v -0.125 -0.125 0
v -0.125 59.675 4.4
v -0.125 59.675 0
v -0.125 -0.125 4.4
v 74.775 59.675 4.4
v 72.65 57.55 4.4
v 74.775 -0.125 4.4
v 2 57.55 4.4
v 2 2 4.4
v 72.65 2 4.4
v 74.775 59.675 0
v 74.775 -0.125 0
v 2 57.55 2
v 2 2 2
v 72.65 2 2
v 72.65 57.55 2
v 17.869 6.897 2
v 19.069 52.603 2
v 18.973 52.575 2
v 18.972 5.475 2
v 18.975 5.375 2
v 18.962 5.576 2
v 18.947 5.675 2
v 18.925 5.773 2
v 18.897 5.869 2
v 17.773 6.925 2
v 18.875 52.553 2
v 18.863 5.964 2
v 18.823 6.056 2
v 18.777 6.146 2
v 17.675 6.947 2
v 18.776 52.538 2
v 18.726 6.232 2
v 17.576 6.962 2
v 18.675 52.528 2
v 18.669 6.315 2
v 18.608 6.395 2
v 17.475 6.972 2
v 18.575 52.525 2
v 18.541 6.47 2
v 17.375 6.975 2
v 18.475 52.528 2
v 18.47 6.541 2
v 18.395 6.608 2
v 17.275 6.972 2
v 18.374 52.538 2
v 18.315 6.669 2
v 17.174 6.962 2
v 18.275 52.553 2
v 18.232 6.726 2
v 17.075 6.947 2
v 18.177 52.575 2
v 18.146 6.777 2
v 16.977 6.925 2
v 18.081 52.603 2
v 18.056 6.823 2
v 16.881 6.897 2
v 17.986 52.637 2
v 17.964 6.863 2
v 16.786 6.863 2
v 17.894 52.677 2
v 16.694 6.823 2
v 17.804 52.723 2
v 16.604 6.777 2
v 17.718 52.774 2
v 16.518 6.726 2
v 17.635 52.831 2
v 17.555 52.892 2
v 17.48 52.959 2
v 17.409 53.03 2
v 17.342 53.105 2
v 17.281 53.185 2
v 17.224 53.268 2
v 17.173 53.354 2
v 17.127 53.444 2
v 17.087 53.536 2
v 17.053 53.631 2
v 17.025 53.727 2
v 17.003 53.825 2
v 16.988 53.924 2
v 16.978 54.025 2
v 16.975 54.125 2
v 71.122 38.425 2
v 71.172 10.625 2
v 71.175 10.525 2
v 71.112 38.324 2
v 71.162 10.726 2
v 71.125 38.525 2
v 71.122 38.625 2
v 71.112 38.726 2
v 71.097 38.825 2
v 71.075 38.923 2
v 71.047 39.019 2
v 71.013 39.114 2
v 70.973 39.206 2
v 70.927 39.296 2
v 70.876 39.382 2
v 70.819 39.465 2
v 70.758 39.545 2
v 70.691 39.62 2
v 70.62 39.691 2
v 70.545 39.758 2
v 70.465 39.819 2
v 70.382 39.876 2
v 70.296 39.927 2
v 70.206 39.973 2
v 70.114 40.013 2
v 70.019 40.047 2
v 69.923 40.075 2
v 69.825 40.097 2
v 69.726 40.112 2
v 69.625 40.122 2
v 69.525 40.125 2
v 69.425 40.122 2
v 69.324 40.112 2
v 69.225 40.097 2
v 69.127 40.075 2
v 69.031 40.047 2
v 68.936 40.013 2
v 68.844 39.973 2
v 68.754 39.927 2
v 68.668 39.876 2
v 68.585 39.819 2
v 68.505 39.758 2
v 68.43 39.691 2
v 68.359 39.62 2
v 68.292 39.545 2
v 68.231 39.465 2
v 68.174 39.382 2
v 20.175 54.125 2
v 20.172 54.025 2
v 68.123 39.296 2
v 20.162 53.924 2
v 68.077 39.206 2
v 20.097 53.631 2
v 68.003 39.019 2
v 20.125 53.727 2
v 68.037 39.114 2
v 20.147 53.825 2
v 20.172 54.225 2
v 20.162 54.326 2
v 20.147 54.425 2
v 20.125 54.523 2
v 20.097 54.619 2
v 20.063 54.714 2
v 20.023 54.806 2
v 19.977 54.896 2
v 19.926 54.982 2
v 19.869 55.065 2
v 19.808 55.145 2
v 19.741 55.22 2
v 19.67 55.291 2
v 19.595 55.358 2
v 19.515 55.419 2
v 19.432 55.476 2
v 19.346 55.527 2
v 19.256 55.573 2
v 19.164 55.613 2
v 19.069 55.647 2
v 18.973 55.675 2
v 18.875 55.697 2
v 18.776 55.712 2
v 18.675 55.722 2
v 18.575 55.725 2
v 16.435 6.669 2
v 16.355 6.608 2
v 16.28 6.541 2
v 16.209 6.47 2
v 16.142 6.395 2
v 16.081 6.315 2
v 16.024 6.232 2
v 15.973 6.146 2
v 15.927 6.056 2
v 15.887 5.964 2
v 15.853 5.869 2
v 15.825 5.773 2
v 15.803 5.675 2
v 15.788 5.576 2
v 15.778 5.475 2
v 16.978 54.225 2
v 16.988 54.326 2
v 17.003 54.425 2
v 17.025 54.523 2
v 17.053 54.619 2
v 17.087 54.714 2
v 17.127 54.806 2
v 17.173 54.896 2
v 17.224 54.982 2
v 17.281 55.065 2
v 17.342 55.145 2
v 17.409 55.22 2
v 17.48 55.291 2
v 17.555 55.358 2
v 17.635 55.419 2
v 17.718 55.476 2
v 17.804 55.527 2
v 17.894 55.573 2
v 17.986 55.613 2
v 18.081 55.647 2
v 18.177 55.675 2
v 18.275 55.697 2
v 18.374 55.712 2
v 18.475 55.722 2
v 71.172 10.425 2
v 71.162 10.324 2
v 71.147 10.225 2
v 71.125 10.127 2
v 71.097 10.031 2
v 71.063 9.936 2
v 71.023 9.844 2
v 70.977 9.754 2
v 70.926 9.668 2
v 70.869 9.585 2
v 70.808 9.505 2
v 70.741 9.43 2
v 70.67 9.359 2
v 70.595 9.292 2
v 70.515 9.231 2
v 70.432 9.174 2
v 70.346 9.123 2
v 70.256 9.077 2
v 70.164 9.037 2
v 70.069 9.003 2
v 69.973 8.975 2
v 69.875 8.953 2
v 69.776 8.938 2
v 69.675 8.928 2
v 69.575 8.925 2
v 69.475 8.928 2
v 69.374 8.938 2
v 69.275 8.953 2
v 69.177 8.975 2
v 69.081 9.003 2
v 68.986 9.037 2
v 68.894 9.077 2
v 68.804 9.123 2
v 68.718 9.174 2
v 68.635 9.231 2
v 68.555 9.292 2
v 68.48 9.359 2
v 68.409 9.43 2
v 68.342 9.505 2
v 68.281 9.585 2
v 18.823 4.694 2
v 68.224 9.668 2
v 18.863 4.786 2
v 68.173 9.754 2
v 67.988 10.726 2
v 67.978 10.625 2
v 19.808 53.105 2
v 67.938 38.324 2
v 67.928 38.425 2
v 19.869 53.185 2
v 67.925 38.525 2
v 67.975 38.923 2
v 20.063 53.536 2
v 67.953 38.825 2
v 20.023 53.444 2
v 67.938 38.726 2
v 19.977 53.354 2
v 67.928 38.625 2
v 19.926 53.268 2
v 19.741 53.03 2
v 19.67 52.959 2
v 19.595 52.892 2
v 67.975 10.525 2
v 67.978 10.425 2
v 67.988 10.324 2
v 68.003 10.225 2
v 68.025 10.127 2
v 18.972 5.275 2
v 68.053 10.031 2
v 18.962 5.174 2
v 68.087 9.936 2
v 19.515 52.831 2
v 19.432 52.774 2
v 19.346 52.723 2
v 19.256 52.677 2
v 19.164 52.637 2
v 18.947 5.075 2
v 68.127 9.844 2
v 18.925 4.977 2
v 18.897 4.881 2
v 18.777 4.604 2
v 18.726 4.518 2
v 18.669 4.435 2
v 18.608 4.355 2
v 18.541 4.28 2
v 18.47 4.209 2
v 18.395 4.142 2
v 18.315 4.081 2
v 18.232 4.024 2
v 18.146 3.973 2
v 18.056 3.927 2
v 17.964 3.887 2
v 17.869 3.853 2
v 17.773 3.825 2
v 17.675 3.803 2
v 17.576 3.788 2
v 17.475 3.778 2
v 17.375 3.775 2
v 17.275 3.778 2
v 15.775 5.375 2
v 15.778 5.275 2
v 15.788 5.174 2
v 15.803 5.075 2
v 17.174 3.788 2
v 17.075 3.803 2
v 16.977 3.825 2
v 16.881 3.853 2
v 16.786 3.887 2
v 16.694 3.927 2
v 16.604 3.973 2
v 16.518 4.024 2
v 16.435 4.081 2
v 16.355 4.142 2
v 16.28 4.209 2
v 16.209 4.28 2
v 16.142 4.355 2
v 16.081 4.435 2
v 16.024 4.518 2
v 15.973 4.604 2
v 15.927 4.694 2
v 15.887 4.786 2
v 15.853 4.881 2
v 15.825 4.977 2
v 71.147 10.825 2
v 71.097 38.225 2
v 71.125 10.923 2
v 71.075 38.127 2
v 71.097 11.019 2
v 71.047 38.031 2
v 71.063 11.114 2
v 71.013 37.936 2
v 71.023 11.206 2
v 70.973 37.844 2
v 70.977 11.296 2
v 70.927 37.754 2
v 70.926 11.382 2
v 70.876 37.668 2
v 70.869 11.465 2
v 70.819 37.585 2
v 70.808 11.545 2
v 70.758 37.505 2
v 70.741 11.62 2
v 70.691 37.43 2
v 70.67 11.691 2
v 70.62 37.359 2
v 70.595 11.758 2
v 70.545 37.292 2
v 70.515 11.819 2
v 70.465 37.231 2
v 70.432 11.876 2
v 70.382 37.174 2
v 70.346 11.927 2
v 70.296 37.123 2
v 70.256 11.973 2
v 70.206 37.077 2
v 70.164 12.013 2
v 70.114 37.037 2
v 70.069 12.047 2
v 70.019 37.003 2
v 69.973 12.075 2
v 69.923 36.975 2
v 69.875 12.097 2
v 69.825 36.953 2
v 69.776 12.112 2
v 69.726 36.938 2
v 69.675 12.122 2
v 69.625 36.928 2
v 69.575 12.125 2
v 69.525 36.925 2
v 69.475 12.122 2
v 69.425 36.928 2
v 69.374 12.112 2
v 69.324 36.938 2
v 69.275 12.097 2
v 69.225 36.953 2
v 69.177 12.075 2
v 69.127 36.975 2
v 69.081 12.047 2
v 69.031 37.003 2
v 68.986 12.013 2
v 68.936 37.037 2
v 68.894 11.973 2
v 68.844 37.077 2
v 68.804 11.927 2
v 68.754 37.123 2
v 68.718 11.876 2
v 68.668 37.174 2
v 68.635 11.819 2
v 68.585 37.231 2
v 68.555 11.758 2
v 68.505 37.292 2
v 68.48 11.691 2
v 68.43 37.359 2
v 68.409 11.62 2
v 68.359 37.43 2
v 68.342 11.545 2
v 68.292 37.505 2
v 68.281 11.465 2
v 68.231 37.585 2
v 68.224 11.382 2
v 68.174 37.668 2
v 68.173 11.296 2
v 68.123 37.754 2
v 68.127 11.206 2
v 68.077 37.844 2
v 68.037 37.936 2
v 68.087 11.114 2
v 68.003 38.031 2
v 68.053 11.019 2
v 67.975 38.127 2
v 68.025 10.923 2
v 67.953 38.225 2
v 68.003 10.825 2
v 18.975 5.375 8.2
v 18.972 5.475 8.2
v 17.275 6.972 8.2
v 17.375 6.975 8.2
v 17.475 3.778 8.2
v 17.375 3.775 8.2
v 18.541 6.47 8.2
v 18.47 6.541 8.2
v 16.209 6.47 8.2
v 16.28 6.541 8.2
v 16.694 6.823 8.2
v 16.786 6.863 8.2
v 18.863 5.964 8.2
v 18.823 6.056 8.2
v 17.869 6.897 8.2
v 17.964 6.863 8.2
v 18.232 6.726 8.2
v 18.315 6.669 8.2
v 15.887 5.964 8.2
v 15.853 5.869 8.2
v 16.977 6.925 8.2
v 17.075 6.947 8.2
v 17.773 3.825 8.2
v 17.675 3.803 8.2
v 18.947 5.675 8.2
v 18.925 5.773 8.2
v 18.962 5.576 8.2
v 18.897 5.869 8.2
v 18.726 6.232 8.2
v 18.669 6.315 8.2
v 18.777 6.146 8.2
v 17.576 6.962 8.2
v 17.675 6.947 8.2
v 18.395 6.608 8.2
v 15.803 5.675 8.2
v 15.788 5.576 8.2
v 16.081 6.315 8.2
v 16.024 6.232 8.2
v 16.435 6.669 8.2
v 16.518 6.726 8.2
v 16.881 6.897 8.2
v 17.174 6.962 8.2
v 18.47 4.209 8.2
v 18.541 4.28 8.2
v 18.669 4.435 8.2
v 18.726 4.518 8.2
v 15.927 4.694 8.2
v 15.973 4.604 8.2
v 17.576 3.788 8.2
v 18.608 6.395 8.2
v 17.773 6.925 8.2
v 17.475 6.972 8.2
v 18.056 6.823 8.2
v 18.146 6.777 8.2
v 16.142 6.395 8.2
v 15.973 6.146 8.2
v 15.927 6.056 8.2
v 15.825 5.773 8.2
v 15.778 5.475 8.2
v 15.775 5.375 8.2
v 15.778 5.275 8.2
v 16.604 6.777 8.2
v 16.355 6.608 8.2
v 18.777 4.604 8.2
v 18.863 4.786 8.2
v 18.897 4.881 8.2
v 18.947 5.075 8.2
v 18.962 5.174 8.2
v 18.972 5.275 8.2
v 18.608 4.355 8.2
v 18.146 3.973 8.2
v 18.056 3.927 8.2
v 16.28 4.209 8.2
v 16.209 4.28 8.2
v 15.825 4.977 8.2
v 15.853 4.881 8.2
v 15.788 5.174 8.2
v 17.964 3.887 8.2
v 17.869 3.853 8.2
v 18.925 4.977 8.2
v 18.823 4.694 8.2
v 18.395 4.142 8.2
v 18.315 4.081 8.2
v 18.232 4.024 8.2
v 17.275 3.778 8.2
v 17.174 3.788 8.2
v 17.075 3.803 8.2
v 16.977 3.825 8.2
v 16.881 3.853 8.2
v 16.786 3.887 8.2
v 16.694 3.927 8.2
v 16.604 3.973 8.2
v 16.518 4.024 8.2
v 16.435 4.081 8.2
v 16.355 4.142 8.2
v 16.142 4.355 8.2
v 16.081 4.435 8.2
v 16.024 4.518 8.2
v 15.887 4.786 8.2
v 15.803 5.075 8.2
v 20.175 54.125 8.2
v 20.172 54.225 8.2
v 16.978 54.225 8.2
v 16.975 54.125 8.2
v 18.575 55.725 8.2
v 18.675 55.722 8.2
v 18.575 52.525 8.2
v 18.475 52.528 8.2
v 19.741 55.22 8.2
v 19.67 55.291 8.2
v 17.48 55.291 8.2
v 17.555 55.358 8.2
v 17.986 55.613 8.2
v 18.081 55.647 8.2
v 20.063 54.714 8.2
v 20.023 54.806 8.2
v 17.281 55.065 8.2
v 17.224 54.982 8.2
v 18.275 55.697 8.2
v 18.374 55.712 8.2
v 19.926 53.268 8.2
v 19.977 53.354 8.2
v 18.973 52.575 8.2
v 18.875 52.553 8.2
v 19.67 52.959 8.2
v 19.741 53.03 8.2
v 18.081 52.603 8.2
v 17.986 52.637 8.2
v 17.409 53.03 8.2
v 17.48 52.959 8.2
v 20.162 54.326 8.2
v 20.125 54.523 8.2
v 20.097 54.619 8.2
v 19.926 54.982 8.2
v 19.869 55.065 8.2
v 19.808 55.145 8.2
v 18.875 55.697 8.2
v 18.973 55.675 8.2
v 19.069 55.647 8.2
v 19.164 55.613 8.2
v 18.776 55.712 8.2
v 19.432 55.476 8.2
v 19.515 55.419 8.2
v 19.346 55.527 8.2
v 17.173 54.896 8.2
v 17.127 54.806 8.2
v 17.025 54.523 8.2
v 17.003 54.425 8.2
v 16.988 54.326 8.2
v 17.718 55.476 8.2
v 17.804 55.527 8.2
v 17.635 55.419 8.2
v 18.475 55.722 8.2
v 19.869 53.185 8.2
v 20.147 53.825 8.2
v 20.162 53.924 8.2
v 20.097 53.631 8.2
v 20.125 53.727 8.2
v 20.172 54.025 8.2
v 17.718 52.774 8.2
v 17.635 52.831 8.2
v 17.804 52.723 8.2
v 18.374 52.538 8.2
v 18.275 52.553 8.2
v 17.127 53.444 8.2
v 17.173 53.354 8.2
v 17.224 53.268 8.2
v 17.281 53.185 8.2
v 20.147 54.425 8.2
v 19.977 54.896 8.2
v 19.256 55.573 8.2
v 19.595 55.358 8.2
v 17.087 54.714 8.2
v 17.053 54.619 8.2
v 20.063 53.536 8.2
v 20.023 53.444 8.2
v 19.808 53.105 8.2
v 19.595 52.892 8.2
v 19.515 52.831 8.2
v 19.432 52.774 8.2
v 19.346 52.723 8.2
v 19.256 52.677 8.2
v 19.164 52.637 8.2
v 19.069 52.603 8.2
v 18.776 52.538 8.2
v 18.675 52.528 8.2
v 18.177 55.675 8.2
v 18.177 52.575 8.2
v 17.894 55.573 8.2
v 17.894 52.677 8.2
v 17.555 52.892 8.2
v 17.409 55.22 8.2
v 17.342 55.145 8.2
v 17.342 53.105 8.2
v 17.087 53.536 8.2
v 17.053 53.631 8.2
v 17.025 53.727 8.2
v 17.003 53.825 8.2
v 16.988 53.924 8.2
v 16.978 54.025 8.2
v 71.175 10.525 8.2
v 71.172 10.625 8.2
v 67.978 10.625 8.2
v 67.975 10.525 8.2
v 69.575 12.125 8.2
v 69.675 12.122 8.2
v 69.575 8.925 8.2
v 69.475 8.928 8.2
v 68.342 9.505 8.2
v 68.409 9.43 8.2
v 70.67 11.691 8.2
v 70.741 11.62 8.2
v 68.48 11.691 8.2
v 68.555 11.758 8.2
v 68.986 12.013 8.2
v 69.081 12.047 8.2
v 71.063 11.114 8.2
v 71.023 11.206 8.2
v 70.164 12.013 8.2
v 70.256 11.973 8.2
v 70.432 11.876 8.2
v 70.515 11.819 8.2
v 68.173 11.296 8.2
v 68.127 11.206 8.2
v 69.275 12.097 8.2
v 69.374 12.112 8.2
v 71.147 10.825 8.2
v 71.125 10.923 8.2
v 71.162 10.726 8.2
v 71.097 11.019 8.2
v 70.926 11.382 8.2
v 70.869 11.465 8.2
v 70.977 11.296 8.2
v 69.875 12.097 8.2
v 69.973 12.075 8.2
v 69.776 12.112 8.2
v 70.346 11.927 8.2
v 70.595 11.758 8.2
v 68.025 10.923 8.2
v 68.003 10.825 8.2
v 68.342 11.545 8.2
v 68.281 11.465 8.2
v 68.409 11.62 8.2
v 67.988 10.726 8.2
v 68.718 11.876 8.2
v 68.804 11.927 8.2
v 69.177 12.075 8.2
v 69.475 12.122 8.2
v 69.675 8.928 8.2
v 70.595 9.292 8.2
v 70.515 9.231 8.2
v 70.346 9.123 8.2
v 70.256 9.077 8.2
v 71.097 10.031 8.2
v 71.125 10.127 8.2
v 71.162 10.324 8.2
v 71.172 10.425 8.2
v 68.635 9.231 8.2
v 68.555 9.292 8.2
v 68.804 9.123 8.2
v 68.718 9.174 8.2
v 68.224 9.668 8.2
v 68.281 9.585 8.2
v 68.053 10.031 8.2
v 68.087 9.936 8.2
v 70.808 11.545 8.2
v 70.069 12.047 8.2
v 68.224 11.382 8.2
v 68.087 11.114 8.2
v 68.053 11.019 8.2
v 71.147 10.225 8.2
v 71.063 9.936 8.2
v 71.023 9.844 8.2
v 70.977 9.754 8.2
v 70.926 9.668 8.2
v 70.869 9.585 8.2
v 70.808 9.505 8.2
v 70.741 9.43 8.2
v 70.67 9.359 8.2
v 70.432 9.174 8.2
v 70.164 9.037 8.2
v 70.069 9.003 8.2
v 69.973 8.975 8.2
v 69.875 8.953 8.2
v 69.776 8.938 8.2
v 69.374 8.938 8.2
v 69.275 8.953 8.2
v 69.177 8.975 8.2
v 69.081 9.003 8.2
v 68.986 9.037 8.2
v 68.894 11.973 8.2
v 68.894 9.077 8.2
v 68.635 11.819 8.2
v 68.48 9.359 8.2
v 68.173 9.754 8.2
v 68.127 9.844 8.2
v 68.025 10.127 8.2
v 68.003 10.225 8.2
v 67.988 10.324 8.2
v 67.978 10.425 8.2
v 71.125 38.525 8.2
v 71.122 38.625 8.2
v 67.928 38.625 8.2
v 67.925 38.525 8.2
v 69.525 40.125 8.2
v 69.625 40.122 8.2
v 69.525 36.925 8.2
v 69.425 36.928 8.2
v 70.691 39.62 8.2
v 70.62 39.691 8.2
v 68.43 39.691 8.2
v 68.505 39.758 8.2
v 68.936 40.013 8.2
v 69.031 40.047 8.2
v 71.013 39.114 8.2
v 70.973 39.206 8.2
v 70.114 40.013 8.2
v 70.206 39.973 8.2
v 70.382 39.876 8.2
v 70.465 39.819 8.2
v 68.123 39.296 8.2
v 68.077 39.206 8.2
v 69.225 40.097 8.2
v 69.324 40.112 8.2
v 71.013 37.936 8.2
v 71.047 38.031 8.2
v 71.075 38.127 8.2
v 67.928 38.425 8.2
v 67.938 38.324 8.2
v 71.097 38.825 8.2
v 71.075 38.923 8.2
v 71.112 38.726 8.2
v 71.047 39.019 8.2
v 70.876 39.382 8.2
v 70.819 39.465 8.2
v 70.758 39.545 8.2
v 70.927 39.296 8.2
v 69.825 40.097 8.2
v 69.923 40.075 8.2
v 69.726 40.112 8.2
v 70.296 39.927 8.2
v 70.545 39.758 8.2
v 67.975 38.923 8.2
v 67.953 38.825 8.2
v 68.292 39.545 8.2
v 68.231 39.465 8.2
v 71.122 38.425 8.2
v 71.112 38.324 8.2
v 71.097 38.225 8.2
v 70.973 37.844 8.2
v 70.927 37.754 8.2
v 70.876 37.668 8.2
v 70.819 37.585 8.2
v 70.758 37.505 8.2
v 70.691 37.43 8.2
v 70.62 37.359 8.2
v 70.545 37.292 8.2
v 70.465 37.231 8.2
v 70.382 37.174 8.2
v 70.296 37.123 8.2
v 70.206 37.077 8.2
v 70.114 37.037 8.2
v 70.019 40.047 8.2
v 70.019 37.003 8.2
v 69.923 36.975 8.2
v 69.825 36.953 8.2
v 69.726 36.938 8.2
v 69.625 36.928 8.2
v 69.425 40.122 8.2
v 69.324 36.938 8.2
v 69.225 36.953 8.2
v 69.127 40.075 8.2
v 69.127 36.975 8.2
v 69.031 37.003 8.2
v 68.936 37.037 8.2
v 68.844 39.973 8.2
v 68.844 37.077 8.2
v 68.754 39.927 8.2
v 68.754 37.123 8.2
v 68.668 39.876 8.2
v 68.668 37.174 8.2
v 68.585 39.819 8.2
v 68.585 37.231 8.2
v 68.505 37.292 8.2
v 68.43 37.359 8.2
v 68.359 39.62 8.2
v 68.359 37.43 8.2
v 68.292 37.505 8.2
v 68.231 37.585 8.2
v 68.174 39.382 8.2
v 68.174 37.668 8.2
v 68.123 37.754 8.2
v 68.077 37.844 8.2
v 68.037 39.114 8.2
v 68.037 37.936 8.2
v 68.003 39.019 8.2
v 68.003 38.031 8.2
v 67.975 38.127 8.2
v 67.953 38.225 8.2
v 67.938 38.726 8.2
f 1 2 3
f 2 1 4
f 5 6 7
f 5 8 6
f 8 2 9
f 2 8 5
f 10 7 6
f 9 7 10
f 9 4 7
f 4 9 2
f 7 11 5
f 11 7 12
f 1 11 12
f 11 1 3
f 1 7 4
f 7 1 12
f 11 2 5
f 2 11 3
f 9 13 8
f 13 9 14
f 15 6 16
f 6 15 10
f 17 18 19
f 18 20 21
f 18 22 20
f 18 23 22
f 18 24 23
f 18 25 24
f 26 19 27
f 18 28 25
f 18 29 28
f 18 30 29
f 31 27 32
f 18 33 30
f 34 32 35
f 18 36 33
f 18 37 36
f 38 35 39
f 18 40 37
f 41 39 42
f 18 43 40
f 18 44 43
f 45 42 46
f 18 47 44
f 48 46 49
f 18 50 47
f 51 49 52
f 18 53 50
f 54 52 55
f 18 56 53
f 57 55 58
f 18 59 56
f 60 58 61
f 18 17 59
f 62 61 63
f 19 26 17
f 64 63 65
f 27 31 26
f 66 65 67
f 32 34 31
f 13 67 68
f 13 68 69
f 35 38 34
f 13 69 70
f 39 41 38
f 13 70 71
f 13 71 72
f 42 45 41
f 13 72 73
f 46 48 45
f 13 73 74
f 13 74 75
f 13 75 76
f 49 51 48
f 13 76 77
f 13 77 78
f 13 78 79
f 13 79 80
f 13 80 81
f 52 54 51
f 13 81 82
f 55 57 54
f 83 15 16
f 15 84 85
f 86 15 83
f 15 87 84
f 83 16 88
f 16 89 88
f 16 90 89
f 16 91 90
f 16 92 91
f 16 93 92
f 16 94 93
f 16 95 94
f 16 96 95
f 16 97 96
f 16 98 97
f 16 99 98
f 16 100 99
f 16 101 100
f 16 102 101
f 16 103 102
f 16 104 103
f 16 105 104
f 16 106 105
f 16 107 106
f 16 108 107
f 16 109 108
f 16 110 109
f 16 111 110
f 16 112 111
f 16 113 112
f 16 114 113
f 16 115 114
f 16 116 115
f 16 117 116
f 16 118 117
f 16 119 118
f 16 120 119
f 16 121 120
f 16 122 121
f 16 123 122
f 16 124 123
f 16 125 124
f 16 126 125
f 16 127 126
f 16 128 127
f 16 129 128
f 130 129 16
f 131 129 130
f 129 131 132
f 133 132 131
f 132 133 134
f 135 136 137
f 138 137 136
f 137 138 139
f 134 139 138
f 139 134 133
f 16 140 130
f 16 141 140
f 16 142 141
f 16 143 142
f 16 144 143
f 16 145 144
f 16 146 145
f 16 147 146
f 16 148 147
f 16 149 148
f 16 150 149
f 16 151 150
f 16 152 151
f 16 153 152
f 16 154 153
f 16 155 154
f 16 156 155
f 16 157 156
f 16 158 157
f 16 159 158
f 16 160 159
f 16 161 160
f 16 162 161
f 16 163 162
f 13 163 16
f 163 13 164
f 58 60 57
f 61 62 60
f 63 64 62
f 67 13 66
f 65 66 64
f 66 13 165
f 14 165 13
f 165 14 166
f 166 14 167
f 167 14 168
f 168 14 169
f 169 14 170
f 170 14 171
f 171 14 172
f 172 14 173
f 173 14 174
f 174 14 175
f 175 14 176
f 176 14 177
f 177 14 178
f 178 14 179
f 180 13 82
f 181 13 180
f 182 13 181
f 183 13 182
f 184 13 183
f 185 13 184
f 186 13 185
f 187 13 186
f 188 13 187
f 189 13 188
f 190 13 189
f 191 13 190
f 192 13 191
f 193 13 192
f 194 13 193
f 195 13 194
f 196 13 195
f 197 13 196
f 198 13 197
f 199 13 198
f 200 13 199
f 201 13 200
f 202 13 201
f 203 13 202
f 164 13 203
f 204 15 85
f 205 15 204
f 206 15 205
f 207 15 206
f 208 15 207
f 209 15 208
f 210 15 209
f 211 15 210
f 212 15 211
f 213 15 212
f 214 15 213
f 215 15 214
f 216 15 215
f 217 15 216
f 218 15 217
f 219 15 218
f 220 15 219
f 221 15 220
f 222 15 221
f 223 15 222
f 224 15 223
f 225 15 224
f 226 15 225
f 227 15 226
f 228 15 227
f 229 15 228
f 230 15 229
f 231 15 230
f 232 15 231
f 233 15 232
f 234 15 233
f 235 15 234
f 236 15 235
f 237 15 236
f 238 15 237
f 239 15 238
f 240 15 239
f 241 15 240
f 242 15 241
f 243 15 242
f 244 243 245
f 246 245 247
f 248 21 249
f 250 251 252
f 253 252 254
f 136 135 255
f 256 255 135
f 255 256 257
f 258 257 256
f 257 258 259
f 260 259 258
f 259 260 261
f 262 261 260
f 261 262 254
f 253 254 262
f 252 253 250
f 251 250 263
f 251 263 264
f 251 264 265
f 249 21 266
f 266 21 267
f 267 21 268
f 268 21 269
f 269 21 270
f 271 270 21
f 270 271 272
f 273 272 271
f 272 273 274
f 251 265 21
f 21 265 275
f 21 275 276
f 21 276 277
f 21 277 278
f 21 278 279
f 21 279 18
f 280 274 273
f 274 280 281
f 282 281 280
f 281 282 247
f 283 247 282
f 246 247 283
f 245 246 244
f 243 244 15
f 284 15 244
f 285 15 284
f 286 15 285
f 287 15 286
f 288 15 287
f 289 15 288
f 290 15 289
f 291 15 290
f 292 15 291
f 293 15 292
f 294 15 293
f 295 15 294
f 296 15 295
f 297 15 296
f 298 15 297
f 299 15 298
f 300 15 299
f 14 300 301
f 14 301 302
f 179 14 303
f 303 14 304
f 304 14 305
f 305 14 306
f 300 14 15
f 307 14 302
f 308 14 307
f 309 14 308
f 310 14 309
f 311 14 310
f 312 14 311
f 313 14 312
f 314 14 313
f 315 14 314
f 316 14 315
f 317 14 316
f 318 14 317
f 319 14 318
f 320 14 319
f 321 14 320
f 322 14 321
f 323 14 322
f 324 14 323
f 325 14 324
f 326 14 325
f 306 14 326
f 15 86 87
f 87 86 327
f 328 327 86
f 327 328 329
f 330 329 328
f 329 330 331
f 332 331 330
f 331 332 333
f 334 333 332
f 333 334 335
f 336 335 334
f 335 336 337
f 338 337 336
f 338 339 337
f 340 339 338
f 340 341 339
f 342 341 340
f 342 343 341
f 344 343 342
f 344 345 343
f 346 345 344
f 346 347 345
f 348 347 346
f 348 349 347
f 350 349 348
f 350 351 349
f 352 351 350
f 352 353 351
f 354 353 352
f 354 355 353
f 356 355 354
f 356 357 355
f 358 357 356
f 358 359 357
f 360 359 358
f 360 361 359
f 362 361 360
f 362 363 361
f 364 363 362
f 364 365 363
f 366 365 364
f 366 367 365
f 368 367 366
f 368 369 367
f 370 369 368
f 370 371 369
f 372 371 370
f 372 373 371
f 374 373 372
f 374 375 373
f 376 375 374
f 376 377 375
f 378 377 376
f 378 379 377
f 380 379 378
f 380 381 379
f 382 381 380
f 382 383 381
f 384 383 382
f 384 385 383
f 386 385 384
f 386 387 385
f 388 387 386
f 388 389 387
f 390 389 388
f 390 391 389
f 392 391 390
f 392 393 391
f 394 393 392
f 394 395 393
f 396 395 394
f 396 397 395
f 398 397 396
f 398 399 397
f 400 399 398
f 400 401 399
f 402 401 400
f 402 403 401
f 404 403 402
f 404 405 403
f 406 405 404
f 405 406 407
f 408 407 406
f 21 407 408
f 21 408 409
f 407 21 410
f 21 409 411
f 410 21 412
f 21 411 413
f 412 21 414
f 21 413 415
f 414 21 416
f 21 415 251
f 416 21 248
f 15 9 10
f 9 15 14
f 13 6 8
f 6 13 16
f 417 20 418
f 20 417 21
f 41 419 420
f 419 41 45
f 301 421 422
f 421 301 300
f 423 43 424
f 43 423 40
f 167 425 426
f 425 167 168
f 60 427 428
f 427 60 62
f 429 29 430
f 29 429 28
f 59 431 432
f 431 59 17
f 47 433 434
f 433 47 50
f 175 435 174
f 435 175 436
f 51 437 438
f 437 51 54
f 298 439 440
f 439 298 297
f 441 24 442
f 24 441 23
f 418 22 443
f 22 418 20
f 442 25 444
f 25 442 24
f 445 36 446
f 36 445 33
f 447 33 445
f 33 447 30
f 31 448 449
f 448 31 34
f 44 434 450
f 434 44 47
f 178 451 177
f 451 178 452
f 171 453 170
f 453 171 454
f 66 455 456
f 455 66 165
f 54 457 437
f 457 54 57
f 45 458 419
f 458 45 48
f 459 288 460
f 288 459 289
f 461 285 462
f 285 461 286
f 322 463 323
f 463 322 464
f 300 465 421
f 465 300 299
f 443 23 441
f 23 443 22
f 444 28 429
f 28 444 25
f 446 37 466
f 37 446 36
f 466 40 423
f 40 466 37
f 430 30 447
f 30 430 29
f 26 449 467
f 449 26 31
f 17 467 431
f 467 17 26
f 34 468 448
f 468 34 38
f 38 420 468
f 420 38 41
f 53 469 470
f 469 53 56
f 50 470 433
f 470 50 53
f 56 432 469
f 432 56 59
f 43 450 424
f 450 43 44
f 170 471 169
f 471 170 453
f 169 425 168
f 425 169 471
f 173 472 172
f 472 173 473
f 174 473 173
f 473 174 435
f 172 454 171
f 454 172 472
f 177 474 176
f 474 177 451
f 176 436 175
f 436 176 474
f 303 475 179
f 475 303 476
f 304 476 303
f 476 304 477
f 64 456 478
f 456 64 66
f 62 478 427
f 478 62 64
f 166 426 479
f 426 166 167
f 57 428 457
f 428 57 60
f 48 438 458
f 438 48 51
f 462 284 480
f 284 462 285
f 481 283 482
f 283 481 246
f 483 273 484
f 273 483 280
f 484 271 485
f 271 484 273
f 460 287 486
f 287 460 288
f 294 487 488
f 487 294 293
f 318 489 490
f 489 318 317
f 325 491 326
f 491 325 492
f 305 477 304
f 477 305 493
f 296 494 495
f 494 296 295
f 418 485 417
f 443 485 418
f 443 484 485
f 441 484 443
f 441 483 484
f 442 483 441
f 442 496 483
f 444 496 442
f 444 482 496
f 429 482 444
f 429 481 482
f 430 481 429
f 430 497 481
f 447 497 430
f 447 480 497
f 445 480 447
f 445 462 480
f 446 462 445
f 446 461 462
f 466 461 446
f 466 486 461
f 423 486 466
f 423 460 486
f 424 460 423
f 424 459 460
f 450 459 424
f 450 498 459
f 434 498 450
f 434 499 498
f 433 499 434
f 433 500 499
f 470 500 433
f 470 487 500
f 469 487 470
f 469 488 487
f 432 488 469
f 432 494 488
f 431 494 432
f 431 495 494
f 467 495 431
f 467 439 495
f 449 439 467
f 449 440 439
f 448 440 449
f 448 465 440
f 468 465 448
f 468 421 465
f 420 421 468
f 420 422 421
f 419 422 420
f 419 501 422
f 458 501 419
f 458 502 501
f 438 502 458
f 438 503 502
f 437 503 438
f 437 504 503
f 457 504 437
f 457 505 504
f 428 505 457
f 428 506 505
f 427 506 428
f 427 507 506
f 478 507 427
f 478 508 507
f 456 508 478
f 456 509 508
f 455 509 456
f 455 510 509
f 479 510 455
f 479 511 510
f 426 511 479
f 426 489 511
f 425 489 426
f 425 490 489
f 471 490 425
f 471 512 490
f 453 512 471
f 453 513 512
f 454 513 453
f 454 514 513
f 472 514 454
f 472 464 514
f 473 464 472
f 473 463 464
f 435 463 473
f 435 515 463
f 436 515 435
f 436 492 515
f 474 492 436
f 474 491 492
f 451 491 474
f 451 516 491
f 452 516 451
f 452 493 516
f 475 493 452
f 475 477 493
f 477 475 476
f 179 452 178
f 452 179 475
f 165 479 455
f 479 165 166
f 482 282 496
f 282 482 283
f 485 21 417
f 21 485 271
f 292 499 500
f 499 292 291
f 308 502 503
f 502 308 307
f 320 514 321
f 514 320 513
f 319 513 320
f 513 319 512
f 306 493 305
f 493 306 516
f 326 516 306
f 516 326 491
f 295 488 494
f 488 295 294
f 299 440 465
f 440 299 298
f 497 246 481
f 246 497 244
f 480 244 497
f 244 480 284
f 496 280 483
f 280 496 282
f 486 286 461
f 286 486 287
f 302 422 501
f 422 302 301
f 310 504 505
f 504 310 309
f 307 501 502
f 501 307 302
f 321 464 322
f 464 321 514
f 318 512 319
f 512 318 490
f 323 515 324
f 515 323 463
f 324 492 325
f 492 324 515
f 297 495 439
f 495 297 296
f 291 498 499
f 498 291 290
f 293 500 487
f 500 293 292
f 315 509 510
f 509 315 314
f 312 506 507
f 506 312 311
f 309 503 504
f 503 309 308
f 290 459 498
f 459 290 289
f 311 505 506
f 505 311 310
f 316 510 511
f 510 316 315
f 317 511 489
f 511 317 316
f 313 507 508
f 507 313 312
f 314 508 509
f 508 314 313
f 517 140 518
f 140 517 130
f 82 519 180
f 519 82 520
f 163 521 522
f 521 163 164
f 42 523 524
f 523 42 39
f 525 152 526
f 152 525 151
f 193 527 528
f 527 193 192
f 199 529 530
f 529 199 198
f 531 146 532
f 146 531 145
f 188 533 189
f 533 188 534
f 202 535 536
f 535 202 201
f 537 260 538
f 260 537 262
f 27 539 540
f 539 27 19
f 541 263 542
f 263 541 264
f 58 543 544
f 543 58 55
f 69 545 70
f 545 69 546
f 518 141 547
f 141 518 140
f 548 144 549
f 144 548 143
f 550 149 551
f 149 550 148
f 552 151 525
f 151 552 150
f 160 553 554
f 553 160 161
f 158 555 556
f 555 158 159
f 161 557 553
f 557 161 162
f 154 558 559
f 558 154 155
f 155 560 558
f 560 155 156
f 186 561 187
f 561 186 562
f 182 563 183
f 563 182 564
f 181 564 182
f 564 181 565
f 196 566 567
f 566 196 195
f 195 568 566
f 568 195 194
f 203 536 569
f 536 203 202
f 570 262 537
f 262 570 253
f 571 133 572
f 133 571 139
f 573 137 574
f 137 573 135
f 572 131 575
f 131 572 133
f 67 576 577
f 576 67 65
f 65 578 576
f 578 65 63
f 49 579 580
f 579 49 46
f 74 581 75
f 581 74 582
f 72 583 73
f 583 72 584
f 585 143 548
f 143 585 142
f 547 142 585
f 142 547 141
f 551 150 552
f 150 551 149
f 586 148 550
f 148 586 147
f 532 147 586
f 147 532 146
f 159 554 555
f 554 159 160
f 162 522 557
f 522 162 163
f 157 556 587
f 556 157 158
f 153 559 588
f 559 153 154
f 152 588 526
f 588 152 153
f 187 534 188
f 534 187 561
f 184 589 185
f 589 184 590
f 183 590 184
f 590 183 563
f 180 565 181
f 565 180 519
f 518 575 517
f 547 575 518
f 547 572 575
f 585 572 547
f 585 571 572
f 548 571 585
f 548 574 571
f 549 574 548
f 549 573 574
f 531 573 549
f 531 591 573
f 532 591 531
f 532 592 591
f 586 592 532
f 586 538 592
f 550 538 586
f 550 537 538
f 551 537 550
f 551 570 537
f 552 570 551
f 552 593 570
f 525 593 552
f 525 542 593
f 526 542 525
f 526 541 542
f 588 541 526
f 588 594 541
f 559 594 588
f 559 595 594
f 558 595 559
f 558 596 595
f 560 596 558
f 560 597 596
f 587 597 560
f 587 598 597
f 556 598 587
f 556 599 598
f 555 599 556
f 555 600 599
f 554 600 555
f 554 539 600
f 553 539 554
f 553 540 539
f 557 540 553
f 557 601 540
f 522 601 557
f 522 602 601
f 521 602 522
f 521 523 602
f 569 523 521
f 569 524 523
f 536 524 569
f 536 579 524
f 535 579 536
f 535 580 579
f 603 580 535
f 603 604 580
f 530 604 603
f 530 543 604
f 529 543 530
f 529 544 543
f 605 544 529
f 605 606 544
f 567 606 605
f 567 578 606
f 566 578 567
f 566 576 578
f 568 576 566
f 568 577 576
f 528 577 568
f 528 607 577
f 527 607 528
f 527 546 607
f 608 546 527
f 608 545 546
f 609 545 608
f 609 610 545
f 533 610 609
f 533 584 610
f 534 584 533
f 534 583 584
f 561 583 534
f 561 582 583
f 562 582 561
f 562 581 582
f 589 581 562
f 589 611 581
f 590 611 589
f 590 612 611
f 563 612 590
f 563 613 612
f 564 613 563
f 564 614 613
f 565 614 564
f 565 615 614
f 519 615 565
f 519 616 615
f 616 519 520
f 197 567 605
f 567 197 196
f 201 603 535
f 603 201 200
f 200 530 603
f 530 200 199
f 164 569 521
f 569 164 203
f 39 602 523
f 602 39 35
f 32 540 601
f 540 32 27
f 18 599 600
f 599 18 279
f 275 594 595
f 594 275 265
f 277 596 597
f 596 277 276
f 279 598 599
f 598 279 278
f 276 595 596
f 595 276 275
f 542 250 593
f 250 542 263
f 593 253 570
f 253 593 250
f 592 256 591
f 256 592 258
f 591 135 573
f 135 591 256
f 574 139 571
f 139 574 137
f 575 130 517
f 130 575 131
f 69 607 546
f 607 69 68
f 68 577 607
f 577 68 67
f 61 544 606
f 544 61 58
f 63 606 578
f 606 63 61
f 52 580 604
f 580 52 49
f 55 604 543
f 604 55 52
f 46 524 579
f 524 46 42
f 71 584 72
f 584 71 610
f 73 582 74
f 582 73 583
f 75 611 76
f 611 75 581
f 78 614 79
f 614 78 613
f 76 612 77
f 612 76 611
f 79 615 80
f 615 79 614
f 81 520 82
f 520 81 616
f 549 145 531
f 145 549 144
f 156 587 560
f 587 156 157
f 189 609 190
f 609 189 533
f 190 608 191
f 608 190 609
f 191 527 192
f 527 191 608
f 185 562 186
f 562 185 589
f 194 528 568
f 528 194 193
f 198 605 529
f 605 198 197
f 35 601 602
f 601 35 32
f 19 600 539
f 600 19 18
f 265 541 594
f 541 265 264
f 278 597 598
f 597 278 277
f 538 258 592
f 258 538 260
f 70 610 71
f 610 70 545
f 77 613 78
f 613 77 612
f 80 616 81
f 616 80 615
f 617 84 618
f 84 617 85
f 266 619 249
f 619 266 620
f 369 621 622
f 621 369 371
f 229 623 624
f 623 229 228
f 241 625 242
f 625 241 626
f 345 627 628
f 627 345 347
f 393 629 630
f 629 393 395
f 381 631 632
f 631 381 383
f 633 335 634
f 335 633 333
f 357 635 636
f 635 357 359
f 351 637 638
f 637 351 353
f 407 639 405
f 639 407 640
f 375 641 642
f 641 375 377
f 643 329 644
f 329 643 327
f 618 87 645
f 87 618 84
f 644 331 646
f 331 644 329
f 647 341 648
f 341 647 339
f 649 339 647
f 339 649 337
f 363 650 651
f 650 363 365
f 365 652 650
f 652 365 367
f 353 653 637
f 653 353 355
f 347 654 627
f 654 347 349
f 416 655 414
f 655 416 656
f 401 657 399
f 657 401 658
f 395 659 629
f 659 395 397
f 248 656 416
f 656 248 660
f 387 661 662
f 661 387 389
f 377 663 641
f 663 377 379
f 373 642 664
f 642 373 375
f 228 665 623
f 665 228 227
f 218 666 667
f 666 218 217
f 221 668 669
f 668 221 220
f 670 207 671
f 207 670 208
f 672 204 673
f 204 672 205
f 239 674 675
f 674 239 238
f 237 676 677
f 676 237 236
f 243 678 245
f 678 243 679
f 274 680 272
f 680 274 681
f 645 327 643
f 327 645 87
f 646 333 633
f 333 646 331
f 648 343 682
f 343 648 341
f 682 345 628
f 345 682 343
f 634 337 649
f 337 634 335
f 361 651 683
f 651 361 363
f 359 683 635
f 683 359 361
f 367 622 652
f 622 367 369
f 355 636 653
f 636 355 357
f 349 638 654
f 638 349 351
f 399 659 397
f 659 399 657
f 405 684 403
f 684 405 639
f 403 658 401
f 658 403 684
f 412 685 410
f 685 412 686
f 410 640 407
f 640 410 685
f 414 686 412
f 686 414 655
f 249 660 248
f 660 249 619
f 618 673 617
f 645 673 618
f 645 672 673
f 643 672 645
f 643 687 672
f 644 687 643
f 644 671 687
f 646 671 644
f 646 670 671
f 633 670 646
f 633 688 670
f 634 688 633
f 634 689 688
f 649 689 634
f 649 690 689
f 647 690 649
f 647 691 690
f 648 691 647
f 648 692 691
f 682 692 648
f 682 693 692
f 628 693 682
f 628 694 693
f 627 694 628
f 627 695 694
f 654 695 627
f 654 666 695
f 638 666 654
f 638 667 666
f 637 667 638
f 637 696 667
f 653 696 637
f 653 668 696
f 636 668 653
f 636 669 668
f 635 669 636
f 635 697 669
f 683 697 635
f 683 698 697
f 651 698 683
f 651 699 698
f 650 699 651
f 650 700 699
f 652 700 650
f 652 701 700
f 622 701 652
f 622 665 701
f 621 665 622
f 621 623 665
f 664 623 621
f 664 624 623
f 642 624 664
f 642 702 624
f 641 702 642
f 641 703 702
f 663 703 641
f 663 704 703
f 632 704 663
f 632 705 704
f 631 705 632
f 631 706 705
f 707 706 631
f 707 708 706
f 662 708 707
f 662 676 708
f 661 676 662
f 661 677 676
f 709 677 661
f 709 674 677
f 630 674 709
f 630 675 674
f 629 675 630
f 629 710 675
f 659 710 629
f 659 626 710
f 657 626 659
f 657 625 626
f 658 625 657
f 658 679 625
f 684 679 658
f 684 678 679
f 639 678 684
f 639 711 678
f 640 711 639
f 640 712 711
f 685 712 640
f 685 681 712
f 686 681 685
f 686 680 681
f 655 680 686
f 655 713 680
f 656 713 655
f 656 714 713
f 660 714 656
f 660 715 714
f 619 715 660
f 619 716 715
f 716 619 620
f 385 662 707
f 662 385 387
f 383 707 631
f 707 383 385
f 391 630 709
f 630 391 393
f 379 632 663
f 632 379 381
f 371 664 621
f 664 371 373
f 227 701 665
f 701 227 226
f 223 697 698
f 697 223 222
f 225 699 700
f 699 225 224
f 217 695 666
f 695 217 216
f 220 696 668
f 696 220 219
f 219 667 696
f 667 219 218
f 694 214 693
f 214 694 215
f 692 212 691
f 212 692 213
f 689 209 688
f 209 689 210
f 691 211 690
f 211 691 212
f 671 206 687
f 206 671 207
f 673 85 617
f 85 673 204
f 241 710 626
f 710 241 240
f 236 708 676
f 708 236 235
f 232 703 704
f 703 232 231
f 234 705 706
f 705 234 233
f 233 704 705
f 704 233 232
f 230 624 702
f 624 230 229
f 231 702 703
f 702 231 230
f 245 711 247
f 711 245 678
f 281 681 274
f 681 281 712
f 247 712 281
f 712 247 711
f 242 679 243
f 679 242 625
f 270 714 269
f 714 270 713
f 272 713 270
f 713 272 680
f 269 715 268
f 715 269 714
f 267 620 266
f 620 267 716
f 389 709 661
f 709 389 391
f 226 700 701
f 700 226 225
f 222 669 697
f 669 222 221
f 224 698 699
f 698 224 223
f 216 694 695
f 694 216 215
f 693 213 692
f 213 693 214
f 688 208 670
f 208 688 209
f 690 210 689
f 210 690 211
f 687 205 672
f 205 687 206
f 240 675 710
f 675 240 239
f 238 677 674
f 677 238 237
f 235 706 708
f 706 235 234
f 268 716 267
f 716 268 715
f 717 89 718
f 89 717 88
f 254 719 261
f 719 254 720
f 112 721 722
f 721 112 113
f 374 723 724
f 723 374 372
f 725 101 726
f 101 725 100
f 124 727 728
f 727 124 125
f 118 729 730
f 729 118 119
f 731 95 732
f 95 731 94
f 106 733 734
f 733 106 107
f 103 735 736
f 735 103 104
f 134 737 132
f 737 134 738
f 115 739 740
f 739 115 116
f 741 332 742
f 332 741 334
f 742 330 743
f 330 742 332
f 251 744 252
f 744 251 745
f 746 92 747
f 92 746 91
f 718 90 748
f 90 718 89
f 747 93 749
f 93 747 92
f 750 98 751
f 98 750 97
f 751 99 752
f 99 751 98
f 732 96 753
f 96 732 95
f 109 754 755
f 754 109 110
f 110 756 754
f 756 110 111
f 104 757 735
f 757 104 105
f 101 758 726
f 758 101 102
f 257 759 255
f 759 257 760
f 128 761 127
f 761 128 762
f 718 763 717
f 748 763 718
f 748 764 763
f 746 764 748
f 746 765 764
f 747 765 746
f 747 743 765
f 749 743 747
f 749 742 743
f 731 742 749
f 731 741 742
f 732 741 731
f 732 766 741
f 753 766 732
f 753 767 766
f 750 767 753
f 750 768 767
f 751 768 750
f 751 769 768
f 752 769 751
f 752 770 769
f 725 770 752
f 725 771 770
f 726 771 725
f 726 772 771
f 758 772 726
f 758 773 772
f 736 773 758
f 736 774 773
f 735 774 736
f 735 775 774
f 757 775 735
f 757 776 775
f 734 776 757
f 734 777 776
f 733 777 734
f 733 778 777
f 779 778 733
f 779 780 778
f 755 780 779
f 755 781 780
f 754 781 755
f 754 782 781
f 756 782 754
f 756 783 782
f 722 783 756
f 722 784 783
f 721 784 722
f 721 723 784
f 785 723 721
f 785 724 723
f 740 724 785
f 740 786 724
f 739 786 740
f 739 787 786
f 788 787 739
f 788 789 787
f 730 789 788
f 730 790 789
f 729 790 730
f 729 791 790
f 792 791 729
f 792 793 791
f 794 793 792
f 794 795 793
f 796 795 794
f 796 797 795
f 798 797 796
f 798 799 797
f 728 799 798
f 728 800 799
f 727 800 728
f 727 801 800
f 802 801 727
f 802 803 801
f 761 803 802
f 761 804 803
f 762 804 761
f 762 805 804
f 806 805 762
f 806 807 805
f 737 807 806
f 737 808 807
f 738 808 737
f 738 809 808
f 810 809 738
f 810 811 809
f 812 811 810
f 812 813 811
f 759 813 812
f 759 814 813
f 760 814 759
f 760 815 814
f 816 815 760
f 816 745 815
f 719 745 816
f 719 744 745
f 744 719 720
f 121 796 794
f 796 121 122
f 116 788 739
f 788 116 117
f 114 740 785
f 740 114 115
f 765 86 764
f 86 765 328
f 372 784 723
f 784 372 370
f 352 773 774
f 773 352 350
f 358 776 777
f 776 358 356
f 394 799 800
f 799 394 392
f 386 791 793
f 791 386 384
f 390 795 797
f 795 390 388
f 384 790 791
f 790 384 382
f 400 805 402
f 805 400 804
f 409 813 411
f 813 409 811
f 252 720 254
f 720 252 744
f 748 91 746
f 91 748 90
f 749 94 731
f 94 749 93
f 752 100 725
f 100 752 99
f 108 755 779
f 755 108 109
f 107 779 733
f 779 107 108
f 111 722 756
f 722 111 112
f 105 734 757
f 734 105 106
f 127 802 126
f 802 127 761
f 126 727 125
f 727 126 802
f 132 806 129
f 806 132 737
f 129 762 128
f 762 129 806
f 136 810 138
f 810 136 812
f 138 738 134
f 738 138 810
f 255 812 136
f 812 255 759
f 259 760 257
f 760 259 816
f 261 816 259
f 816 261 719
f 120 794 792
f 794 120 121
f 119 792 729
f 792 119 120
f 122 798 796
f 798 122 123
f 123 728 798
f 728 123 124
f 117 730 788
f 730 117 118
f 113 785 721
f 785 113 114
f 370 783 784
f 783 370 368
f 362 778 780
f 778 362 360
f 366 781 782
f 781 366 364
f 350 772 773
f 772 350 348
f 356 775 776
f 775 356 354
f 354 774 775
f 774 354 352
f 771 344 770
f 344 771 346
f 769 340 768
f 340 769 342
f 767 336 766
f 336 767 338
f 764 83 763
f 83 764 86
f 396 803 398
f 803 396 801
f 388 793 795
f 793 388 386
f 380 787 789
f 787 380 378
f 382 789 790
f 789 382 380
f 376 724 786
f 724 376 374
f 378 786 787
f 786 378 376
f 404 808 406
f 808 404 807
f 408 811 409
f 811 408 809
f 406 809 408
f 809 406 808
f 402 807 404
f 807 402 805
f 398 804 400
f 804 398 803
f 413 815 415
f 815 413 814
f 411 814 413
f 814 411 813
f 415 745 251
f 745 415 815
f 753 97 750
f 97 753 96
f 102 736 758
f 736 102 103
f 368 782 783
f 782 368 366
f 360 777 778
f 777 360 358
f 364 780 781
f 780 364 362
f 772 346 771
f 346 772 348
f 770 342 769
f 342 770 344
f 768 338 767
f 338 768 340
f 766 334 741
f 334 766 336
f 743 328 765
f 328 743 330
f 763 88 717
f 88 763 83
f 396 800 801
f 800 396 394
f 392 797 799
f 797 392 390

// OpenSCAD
// file: funcArduinoUNO.scad
module funcArduinoUNO(res=10,amais=2.6){
    // ----- ----- ----- Declaração de Variáveis ----- ----- ----- //
    folga1=0.125;

    pcbx=41.8;
    pcbx1=66.5;
    pcbx2=68.65;
    pcby1=2.9;
    pcby2=4.65;
    pcby3=53.55-14.95;
    pcby4=53.55-13.3;
    pcby5=53.55;
    pcbz=1.6;
    pcbr=3.45/2;
    pcbalt=1.6;
    pbcentre=(35+28.8)/2;
    pcbfuro1=3.1+pcbr;

    conx=16.35;
    cony=12.1;
    conz=10.7;
    tCx=-7.8;
    tCy=28.4+3.1;

    alix=14;
    aliy=8.9;
    aliz=11;
    tAx=-4.65;
    tAy=3.1;

    pin1x=20.75;
    pin2x=15.6;
    pin3x=25.8;
    pin4x=20.75;
    piny=2.55;
    pinz=8.55;
    tpin1x=26.7;
    tpin2x=tpin1x+pin1x+2.05;
    tpin3x=18;
    tpin4x=tpin3x+pin3x+0.9;
    tpinbaixoy=1.3;
    tpinaltoy=pcby5-1-piny;

    conectDisspx=9;
    conectDisspy=9;
    conectDisspz=4.55;
    tDsx=2;
    tDsy=2.75;

    conectEDSx=2.35;
    conectEDSy=7.2;
    conectEDSz=2.6;
    tEDSx=2.55;

    conectStepx=9.1;
    conectStepy=9.85;
    conectStepz=5.7;
    tSx=pcbx-conectStepx-0.6;

    conectStep123x=1.45;
    conectStep123y=3.25;
    conectStep123z=1.25;
    tS1x=tSx+conectStepx/2-(3*conectStep123x+2)/2;
    tS2x=tS1x+1+conectStep123x;
    tS3x=tS2x+1+conectStep123x;

    fio06=0.6;
    fioz=5.75;

    rcx=6.75;
    rcy=6.55;
    rcz=2;
    trcx=2.35;
    trcy=pcby5-rcy-0.7;

    rbr=3/2;
    rbalt=1;
    trbx=trcx+(rcx-6.25)+6.25/2;
    trby=trcy+rcy/2;

    ISCPx=5;
    ISCPy=7.35;
    ISCPz=2.6;
    tISCPx=pcbx2-ISCPx-0.8;
    tISCPy=24.4;

    oscr=3.5/2;
    oscalt=4;
    oscx=4.45;
    oscy=11.3;
    oscz=1.1;
    oschull=10-3.5;
    toscx=pcbx2-oscx-13.4;
    toscy=32.35-oscy+tpinbaixoy;

    osc2r=3.5/2;
    osc2alt=4;
    osc2x=11.3;
    osc2y=4.45;
    osc2z=1.1;
    osc2hull=10-3.5;
    tosc2x=pcbx2-osc2x-46.1;
    tosc2y=pcby5-osc2y-12.9;

    capr=6.3/2;
    capalt=6;
    cap2alt=6-4.1;
    tcapx=pcbx2-4*capr-43.65-0.6;
    tcap2x=pcbx2-2*capr-43.65;
    tcapy=6.05;

    // ----- ----- ----- Declaração de Variáveis ----- ----- ----- //
    module arrayPins(pit,alt,l,n){
        for(i=[0:1:n-1]){
            translate([i*(l/n)+(l/n)/2-pit/2,0,0])cube([pit,pit,alt]);
        }
    }

    // ----- ----- ----- MAIN ----- ----- ----- //
    // PCB
    difference(){
        linear_extrude(pcbz+amais)polygon(points=[[    0,    0],
                                                  [pcbx1,    0],
                                                  [pcbx1,pcby1],
                                                  [pcbx2,pcby2],
                                                  [pcbx2,pcby3],
                                                  [pcbx1,pcby4],
                                                  [pcbx1,pcby5],
                                                  [    0,pcby5]]);
        #translate([12.65+pcbr,0.65+pcbr,0])cylinder(pcbalt+amais,pcbr,pcbr,$fn=res);
        #translate([13.85+pcbr,pcby5-0.7-pcbr,0])cylinder(pcbalt+amais,pcbr,pcbr,$fn=res);
        #translate([pcbx2-0.35-pcbr,5.8+pcbr,0])cylinder(pcbalt+amais,pcbr,pcbr,$fn=res);
        #translate([pcbx2-0.4-pcbr,pcby5-16.3-pcbr,0])cylinder(pcbalt+amais,pcbr,pcbr,$fn=res);
    }
    // Periféricos de Comunicação/Conexão e Alimentação
    translate([tCx,tCy,pcbz+amais])cube([conx,cony,conz]);
    translate([tAx,tAy,pcbz+amais])cube([alix,aliy,aliz]);
    // Pinos Macho e Fêmea
    translate([tpin1x,tpinbaixoy,pcbz+amais])cube([pin1x,piny,pinz]);
    translate([tpin1x,tpinbaixoy+piny+0.5,pcbz+amais])cube([pin1x,piny,conectEDSz]);
    translate([tpin1x,tpinbaixoy+piny+0.5+piny/2-fio06/2,pcbz+amais+conectEDSz])arrayPins(fio06,fioz,pin1x,8);
    translate([tpin2x,tpinbaixoy,pcbz+amais])cube([pin2x,piny,pinz]);
    translate([tpin2x,tpinbaixoy+piny+0.5,pcbz+amais])cube([pin2x,piny,conectEDSz]);
    translate([tpin2x,tpinbaixoy+piny+0.5+piny/2-fio06/2,pcbz+amais+conectEDSz])arrayPins(fio06,fioz,pin2x,6);
    translate([tpin3x,tpinaltoy,pcbz+amais])cube([pin3x,piny,pinz]);
    translate([tpin3x,tpinaltoy-piny-0.5,pcbz+amais])cube([pin3x,piny,conectEDSz]);
    translate([tpin3x,tpinaltoy-piny-0.5+piny/2-fio06/2,pcbz+amais+conectEDSz])arrayPins(fio06,fioz,pin3x,10);
    translate([tpin4x,tpinaltoy,pcbz+amais])cube([pin4x,piny,pinz]);
    translate([tpin4x,tpinaltoy-piny-0.5,pcbz+amais])cube([pin4x,piny,conectEDSz]);
    translate([tpin4x,tpinaltoy-piny-0.5+piny/2-fio06/2,pcbz+amais+conectEDSz])arrayPins(fio06,fioz,pin4x,8);
    // Botão de Reset
    translate([trcx,trcy,pcbz+amais])cube([rcx,rcy,rcz]);
    translate([trbx,trby,pcbz+amais+rcz])cylinder(rbalt,rbr,rbr,$fn=res);
    // Conexão ISCP
    translate([tISCPx,tISCPy,pcbz+amais])cube([ISCPx,ISCPy,ISCPz]);
    translate([tISCPx,tISCPy+(ISCPy/3)/2-fio06/2,pcbz+amais+ISCPz])arrayPins(fio06,fioz,ISCPx,2);
    translate([tISCPx,tISCPy+ISCPy/3+(ISCPy/3)/2-fio06/2,pcbz+amais+ISCPz])arrayPins(fio06,fioz,ISCPx,2);
    translate([tISCPx,tISCPy+ISCPy/3+ISCPy/3+(ISCPy/3)/2-fio06/2,pcbz+amais+ISCPz])arrayPins(fio06,fioz,ISCPx,2);
    // Osciladores 1 e 2
    translate([toscx,toscy,pcbz+amais])cube([oscx,oscy,oscz]);
    hull(){
        translate([toscx+oscx/2,toscy+oscy/2-oschull/2,pcbz+amais])cylinder(oscalt,oscr,oscr,$fn=res);
        translate([toscx+oscx/2,toscy+oscy/2+oschull/2,pcbz+amais])cylinder(oscalt,oscr,oscr,$fn=res);
    }
    translate([tosc2x,tosc2y,pcbz+amais])cube([osc2x,osc2y,osc2z]);
    hull(){
        translate([tosc2x+osc2x/2-oschull/2,tosc2y+osc2y/2,pcbz+amais])cylinder(oscalt,oscr,oscr,$fn=res);
        translate([tosc2x+osc2x/2+oschull/2,tosc2y+osc2y/2,pcbz+amais])cylinder(oscalt,oscr,oscr,$fn=res);
    }
    // Capacitores
    translate([tcapx,tcapy,pcbz+amais])cube([2*capr,2*capr,cap2alt]);
    translate([tcap2x,tcapy,pcbz+amais])cube([2*capr,2*capr,cap2alt]);
    translate([tcapx+capr,tcapy+capr,pcbz+amais])cylinder(capalt,capr,capr,$fn=res);
    translate([tcap2x+capr,tcapy+capr,pcbz+amais])cylinder(capalt,capr,capr,$fn=res);
}

funcArduinoUNO(100);
// main file
use <funcArduinoUNO.scad>
module funcBaseEL3DArduinoUNO(res=100,amais2=2.6){
    // ----- ----- ----- Declaração de Variáveis ----- ----- ----- //
    folga1=0.125;
    folga10=1;

    pcbx=41.8;
    pcbx1=66.5;
    pcbx2=68.65;
    pcby1=2.9;
    pcby2=4.65;
    pcby3=53.55-14.95;
    pcby4=53.55-13.3;
    pcby5=53.55;
    pcbz=1.6;
    pcbr=3.45/2;
    pcbalt=1.6;
    pbcentre=(35+28.8)/2;
    pcbfuro1=3.1+pcbr;

    conx=16.35;
    cony=12.1;
    conz=10.7;
    tCx=-7.8;
    tCy=28.4+3.1;

    alix=14;
    aliy=8.9;
    aliz=11;
    tAx=-4.65;
    tAy=3.1;

    pin1x=20.75;
    pin2x=15.6;
    pin3x=25.8;
    pin4x=20.75;
    piny=2.55;
    pinz=8.55;
    tpin1x=26.7;
    tpin2x=tpin1x+pin1x+2.05;
    tpin3x=18;
    tpin4x=tpin3x+pin3x+0.9;
    tpinbaixoy=1.3;
    tpinaltoy=pcby5-1-piny;

    conectDisspx=9;
    conectDisspy=9;
    conectDisspz=4.55;
    tDsx=2;
    tDsy=2.75;

    conectEDSx=2.35;
    conectEDSy=7.2;
    conectEDSz=2.6;
    tEDSx=2.55;

    conectStepx=9.1;
    conectStepy=9.85;
    conectStepz=5.7;
    tSx=pcbx-conectStepx-0.6;

    conectStep123x=1.45;
    conectStep123y=3.25;
    conectStep123z=1.25;
    tS1x=tSx+conectStepx/2-(3*conectStep123x+2)/2;
    tS2x=tS1x+1+conectStep123x;
    tS3x=tS2x+1+conectStep123x;

    fio06=0.6;
    fioz=5.75;

    rcx=6.75;
    rcy=6.55;
    rcz=2;
    trcx=2.35;
    trcy=pcby5-rcy-0.7;

    rbr=3/2;
    rbalt=1;
    trbx=trcx+(rcx-6.25)+6.25/2;
    trby=trcy+rcy/2;

    ISCPx=5;
    ISCPy=7.35;
    ISCPz=2.6;
    tISCPx=pcbx2-ISCPx-0.8;
    tISCPy=24.4;

    oscr=3.5/2;
    oscalt=4;
    oscx=4.45;
    oscy=11.3;
    oscz=1.1;
    oschull=10-3.5;
    toscx=pcbx2-oscx-13.4;
    toscy=32.35-oscy+tpinbaixoy;

    osc2r=3.5/2;
    osc2alt=4;
    osc2x=11.3;
    osc2y=4.45;
    osc2z=1.1;
    osc2hull=10-3.5;
    tosc2x=pcbx2-osc2x-46.1;
    tosc2y=pcby5-osc2y-12.9;

    capr=6.3/2;
    capalt=6;
    cap2alt=6-4.1;
    tcapx=pcbx2-4*capr-43.65-0.6;
    tcap2x=pcbx2-2*capr-43.65;
    tcapy=6.05;

    espParede=2;
    baseARDx=pcbx2+2*folga10;
    baseARDy=pcby5+2*folga10;
    baseARDz=2.4;

    // ----- ----- ----- Declaração de Variáveis ----- ----- ----- //
    module arrayPins(pit,alt,l,n){
        for(i=[0:1:n-1]){
            translate([i*(l/n)+(l/n)/2-pit/2,0,0])cube([pit,pit,alt]);
        }
    }
    
    //translate([espParede+folga10,espParede+folga10,espParede])funcArduinoUNO(res,amais2);

    // ----- ----- ----- MAIN ----- ----- ----- //

    // Base do Arduino
    difference(){
        translate([-folga1,-folga1,0])
        cube([baseARDx+2*espParede+2*folga1,baseARDy+2*espParede+2*folga1,baseARDz+espParede]);
        #translate([espParede,espParede,espParede])cube([baseARDx,baseARDy,baseARDz]);
    }
    // Encaixe Cilíndrico do Arduino
    translate([espParede+folga10,espParede+folga10,espParede]){
        translate([12.65+pcbr,0.65+pcbr,0])cylinder(pcbalt+amais2+espParede,pcbr-folga1,pcbr-folga1,$fn=res);
        translate([13.85+pcbr,pcby5-0.7-pcbr,0])cylinder(pcbalt+amais2+espParede,pcbr-folga1,pcbr-folga1,$fn=res);
        translate([pcbx2-0.35-pcbr,5.8+pcbr,0])cylinder(pcbalt+amais2+espParede,pcbr-folga1,pcbr-folga1,$fn=res);
        translate([pcbx2-0.4-pcbr,pcby5-16.3-pcbr,0])cylinder(pcbalt+amais2+espParede,pcbr-folga1,pcbr-folga1,$fn=res);
    }
} 

funcBaseEL3DArduinoUNO();
